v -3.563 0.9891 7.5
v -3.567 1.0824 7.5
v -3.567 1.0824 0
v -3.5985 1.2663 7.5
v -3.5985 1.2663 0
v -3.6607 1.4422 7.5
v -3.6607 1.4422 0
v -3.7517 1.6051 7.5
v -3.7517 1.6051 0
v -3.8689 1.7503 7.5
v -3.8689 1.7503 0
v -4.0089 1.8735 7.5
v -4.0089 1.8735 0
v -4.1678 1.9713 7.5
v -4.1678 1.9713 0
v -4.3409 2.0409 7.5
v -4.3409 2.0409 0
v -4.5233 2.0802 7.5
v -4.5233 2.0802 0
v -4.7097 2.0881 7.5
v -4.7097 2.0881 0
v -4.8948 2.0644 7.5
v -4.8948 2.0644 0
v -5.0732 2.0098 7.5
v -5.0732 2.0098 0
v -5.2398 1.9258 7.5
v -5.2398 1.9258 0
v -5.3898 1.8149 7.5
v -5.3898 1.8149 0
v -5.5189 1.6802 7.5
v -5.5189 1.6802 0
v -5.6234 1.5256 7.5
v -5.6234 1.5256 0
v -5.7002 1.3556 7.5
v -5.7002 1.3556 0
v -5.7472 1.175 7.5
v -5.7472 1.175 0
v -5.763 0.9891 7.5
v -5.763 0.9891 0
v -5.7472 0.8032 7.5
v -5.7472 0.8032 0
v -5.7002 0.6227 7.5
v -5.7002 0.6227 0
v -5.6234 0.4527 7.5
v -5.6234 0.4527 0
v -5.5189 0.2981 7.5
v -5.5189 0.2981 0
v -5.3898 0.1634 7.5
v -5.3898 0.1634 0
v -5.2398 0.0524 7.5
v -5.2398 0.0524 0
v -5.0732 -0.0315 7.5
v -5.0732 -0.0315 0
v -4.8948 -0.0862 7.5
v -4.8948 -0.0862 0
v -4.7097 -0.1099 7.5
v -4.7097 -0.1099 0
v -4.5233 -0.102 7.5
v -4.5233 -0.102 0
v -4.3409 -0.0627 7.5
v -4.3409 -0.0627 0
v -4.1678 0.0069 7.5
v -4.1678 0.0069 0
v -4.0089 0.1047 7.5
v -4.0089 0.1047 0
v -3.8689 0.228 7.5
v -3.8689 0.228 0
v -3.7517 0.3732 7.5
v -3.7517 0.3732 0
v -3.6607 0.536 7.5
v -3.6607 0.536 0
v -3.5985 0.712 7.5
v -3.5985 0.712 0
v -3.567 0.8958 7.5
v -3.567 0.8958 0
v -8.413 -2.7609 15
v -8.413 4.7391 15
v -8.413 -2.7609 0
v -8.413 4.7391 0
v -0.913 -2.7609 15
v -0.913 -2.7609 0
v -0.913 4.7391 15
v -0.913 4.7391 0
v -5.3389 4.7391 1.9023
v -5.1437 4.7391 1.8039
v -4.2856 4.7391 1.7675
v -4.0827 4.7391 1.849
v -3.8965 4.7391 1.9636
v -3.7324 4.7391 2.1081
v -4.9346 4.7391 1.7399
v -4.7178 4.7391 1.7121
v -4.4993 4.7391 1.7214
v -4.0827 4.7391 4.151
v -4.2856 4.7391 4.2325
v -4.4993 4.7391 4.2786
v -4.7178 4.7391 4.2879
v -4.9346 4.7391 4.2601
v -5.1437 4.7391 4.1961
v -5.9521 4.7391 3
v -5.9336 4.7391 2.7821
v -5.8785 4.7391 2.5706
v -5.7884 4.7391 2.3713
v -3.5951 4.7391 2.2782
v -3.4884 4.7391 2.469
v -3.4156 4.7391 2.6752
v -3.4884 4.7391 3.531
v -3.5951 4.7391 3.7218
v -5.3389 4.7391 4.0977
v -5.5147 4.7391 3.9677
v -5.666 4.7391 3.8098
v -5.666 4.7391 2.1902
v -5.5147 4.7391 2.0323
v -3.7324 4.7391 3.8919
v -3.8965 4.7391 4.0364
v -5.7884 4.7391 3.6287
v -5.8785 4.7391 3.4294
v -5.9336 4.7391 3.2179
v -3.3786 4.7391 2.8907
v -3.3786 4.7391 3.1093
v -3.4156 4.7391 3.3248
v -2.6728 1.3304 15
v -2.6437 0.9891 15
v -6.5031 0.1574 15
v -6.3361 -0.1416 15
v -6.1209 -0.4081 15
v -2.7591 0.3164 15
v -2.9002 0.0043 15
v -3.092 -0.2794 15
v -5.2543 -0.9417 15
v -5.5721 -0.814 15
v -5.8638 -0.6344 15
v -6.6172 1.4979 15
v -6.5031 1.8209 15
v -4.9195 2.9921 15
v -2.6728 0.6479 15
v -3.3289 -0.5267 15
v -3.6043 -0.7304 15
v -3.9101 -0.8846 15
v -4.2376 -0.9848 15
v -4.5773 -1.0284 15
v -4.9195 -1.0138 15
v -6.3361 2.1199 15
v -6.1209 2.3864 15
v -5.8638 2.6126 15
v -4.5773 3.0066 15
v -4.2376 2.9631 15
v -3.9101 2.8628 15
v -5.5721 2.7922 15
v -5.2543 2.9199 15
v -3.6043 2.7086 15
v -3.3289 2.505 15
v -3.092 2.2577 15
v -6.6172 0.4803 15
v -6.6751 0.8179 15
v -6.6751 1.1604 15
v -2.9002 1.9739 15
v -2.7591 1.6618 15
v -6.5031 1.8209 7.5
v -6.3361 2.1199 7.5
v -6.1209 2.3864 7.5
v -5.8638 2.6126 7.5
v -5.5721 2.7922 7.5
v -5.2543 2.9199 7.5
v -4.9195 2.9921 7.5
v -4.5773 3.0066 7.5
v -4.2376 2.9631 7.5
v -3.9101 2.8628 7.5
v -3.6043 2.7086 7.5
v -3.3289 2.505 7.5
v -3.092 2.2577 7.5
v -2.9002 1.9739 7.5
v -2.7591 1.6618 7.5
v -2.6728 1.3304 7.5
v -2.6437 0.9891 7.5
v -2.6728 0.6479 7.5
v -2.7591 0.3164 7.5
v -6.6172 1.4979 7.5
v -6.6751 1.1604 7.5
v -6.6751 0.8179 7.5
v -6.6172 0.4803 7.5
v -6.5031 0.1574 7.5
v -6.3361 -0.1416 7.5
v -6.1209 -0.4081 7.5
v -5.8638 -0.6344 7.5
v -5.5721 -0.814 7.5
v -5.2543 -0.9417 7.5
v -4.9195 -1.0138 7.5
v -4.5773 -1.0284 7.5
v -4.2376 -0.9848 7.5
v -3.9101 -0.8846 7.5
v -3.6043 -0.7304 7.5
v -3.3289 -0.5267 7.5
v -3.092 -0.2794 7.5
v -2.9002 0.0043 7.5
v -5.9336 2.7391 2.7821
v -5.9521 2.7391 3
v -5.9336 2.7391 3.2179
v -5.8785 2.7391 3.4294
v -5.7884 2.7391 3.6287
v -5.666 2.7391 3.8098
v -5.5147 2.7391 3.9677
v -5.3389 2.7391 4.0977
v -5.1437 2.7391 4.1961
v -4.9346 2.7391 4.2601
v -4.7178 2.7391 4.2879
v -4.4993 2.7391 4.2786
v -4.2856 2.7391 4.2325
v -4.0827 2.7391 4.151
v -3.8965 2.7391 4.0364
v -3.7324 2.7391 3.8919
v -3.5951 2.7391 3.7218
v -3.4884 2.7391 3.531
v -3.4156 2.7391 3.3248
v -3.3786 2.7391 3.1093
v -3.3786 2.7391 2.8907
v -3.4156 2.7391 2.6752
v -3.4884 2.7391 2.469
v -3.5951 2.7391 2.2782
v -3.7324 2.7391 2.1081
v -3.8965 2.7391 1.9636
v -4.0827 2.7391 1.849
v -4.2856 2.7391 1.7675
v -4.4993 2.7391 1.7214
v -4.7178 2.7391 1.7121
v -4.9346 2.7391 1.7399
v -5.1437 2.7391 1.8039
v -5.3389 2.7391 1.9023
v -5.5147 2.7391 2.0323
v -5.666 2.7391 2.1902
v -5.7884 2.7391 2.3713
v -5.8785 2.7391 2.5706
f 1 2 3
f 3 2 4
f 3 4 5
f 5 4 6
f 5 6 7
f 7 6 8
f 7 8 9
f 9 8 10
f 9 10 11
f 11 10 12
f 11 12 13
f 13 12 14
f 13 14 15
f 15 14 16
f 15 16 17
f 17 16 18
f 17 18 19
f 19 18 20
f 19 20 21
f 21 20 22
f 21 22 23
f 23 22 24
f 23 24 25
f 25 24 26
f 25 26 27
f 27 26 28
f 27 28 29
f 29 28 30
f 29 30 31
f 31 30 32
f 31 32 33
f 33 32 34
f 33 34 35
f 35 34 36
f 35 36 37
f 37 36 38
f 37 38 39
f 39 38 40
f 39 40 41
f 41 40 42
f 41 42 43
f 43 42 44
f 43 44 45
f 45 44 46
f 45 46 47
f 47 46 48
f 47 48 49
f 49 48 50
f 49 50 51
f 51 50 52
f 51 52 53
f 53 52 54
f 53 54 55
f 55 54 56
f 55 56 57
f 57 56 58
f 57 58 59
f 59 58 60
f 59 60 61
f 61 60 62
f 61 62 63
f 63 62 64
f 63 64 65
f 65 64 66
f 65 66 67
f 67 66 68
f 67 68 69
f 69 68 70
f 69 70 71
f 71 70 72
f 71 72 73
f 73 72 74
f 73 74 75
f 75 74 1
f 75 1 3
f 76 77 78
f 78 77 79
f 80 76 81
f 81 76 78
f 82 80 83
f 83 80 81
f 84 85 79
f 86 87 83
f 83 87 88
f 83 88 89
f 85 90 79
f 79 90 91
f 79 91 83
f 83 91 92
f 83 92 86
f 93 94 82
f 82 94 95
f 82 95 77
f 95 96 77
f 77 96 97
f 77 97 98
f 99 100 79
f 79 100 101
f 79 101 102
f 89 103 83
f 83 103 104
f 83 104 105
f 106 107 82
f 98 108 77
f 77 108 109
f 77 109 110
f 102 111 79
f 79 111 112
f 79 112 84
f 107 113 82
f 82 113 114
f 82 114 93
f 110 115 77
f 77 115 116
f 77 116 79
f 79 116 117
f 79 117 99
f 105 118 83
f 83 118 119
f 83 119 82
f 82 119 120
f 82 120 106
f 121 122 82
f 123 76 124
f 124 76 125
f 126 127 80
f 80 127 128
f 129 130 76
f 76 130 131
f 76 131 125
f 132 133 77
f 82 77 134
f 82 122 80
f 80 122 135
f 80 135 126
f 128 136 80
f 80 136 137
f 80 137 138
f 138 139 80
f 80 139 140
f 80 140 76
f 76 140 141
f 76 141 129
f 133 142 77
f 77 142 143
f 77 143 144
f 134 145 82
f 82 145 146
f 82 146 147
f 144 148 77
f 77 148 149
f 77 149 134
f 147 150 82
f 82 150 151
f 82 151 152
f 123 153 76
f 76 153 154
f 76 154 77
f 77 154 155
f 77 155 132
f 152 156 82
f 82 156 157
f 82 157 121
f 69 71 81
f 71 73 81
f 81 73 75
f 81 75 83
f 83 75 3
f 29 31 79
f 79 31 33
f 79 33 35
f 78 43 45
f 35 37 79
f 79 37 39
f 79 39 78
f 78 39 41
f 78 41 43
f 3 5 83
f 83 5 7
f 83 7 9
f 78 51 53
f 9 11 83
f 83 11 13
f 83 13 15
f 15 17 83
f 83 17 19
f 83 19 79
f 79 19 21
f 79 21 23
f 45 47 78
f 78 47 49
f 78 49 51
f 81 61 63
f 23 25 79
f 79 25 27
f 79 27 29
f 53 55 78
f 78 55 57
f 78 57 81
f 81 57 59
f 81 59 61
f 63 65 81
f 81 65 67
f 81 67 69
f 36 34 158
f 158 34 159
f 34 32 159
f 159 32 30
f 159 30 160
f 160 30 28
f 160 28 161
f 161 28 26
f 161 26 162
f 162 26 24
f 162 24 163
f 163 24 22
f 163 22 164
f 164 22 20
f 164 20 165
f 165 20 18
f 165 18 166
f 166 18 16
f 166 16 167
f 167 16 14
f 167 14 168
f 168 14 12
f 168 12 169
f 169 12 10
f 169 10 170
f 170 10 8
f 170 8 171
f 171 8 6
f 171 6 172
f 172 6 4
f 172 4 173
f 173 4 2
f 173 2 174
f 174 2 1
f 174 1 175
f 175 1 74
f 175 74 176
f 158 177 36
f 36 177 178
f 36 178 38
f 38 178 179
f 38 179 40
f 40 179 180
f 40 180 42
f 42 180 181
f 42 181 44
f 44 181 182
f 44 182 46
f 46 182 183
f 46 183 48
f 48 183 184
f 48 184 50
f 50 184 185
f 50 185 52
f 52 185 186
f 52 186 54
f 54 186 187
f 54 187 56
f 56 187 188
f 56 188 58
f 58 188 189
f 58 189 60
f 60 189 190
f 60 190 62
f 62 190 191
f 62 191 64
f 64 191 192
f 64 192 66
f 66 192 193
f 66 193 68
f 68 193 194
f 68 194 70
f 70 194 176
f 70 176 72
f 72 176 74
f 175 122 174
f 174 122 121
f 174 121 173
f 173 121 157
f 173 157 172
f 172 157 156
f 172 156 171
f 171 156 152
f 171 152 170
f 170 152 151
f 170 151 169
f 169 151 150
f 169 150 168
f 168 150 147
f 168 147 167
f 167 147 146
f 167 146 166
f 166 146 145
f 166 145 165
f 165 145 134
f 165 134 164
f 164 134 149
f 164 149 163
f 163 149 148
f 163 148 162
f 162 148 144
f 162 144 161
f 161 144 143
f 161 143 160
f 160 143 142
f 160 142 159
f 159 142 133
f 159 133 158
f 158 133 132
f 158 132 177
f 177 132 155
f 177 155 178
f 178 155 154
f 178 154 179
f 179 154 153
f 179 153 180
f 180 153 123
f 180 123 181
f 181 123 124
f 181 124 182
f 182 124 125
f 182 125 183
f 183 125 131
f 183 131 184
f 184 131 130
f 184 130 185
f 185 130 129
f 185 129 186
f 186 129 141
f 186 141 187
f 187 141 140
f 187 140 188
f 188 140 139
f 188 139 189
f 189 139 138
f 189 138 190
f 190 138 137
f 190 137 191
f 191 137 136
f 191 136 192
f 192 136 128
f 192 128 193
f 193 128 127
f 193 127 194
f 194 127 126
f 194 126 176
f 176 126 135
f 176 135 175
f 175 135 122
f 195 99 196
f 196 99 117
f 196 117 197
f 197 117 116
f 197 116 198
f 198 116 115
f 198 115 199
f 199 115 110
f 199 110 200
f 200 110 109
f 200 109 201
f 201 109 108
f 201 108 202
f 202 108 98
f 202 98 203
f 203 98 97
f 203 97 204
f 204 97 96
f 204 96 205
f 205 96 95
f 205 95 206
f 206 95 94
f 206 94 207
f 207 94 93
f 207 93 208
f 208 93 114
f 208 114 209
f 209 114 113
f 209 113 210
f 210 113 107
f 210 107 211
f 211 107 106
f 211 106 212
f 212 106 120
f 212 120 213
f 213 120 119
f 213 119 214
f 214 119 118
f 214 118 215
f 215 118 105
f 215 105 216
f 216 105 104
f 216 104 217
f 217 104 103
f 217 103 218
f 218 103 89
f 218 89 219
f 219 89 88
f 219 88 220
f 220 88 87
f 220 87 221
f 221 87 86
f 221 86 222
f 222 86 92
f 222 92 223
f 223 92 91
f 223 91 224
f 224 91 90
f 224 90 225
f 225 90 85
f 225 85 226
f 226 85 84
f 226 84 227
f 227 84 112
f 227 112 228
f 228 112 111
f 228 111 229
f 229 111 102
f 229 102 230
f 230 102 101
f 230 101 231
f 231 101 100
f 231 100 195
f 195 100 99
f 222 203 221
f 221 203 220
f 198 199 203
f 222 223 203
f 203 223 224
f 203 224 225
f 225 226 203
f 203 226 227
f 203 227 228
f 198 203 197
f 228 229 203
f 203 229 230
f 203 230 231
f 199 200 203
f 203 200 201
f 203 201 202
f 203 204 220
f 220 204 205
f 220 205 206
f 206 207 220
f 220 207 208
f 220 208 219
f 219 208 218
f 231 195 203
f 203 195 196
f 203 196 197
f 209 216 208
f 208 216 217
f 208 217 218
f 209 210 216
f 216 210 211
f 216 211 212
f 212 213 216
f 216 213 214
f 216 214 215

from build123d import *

# Parameters (mm, degrees)
SKETCH1_W                     = 7.5
SKETCH1_H                     = 7.5
BOSS_EXTRUDE1_DEPTH           = 15
HOLE_FOR_TUBING_R             = 1.1
CUT_EXTRUDE1_DEPTH            = 16
F_10_32_HOLE_FOR_LUER_SCREW_R = 2.0193
CUT_EXTRUDE2_DEPTH            = 7.5
F_5_40_SET_SCREW_HOLE_R       = 1.28905
CUT_EXTRUDE3_DEPTH            = 2


with BuildPart() as part:
    # Sketch1 → Boss-Extrude1 (new body)
    with BuildSketch(Plane.XY):
        with Locations((-4.663043478, 0.989130435)):
            Rectangle(SKETCH1_W, SKETCH1_H)
    extrude(amount=BOSS_EXTRUDE1_DEPTH)

    # hole for tubing → Cut-Extrude1 (cut, through all)
    with BuildSketch(Plane(origin=(0, 0, 0), x_dir=(-1, 0, 0), z_dir=(0, 0, -1))):
        with Locations((4.663043478, 0.989130435)):
            Circle(HOLE_FOR_TUBING_R)
    extrude(amount=-CUT_EXTRUDE1_DEPTH, mode=Mode.SUBTRACT)

    # 10-32 hole for luer screw → Cut-Extrude2 (cut)
    with BuildSketch(Plane.XY.offset(15)):
        with Locations((-4.663043478, 0.989130435)):
            Circle(F_10_32_HOLE_FOR_LUER_SCREW_R)
    extrude(amount=-CUT_EXTRUDE2_DEPTH, mode=Mode.SUBTRACT)

    # 5-40 set screw hole → Cut-Extrude3 (cut)
    with BuildSketch(Plane(origin=(0, 4.739130435, 0), x_dir=(1, 0, 0), z_dir=(0, 1, 0))):
        with Locations((-4.663043478, -3)):
            Circle(F_5_40_SET_SCREW_HOLE_R)
    extrude(amount=-CUT_EXTRUDE3_DEPTH, mode=Mode.SUBTRACT)


solid = part.part
